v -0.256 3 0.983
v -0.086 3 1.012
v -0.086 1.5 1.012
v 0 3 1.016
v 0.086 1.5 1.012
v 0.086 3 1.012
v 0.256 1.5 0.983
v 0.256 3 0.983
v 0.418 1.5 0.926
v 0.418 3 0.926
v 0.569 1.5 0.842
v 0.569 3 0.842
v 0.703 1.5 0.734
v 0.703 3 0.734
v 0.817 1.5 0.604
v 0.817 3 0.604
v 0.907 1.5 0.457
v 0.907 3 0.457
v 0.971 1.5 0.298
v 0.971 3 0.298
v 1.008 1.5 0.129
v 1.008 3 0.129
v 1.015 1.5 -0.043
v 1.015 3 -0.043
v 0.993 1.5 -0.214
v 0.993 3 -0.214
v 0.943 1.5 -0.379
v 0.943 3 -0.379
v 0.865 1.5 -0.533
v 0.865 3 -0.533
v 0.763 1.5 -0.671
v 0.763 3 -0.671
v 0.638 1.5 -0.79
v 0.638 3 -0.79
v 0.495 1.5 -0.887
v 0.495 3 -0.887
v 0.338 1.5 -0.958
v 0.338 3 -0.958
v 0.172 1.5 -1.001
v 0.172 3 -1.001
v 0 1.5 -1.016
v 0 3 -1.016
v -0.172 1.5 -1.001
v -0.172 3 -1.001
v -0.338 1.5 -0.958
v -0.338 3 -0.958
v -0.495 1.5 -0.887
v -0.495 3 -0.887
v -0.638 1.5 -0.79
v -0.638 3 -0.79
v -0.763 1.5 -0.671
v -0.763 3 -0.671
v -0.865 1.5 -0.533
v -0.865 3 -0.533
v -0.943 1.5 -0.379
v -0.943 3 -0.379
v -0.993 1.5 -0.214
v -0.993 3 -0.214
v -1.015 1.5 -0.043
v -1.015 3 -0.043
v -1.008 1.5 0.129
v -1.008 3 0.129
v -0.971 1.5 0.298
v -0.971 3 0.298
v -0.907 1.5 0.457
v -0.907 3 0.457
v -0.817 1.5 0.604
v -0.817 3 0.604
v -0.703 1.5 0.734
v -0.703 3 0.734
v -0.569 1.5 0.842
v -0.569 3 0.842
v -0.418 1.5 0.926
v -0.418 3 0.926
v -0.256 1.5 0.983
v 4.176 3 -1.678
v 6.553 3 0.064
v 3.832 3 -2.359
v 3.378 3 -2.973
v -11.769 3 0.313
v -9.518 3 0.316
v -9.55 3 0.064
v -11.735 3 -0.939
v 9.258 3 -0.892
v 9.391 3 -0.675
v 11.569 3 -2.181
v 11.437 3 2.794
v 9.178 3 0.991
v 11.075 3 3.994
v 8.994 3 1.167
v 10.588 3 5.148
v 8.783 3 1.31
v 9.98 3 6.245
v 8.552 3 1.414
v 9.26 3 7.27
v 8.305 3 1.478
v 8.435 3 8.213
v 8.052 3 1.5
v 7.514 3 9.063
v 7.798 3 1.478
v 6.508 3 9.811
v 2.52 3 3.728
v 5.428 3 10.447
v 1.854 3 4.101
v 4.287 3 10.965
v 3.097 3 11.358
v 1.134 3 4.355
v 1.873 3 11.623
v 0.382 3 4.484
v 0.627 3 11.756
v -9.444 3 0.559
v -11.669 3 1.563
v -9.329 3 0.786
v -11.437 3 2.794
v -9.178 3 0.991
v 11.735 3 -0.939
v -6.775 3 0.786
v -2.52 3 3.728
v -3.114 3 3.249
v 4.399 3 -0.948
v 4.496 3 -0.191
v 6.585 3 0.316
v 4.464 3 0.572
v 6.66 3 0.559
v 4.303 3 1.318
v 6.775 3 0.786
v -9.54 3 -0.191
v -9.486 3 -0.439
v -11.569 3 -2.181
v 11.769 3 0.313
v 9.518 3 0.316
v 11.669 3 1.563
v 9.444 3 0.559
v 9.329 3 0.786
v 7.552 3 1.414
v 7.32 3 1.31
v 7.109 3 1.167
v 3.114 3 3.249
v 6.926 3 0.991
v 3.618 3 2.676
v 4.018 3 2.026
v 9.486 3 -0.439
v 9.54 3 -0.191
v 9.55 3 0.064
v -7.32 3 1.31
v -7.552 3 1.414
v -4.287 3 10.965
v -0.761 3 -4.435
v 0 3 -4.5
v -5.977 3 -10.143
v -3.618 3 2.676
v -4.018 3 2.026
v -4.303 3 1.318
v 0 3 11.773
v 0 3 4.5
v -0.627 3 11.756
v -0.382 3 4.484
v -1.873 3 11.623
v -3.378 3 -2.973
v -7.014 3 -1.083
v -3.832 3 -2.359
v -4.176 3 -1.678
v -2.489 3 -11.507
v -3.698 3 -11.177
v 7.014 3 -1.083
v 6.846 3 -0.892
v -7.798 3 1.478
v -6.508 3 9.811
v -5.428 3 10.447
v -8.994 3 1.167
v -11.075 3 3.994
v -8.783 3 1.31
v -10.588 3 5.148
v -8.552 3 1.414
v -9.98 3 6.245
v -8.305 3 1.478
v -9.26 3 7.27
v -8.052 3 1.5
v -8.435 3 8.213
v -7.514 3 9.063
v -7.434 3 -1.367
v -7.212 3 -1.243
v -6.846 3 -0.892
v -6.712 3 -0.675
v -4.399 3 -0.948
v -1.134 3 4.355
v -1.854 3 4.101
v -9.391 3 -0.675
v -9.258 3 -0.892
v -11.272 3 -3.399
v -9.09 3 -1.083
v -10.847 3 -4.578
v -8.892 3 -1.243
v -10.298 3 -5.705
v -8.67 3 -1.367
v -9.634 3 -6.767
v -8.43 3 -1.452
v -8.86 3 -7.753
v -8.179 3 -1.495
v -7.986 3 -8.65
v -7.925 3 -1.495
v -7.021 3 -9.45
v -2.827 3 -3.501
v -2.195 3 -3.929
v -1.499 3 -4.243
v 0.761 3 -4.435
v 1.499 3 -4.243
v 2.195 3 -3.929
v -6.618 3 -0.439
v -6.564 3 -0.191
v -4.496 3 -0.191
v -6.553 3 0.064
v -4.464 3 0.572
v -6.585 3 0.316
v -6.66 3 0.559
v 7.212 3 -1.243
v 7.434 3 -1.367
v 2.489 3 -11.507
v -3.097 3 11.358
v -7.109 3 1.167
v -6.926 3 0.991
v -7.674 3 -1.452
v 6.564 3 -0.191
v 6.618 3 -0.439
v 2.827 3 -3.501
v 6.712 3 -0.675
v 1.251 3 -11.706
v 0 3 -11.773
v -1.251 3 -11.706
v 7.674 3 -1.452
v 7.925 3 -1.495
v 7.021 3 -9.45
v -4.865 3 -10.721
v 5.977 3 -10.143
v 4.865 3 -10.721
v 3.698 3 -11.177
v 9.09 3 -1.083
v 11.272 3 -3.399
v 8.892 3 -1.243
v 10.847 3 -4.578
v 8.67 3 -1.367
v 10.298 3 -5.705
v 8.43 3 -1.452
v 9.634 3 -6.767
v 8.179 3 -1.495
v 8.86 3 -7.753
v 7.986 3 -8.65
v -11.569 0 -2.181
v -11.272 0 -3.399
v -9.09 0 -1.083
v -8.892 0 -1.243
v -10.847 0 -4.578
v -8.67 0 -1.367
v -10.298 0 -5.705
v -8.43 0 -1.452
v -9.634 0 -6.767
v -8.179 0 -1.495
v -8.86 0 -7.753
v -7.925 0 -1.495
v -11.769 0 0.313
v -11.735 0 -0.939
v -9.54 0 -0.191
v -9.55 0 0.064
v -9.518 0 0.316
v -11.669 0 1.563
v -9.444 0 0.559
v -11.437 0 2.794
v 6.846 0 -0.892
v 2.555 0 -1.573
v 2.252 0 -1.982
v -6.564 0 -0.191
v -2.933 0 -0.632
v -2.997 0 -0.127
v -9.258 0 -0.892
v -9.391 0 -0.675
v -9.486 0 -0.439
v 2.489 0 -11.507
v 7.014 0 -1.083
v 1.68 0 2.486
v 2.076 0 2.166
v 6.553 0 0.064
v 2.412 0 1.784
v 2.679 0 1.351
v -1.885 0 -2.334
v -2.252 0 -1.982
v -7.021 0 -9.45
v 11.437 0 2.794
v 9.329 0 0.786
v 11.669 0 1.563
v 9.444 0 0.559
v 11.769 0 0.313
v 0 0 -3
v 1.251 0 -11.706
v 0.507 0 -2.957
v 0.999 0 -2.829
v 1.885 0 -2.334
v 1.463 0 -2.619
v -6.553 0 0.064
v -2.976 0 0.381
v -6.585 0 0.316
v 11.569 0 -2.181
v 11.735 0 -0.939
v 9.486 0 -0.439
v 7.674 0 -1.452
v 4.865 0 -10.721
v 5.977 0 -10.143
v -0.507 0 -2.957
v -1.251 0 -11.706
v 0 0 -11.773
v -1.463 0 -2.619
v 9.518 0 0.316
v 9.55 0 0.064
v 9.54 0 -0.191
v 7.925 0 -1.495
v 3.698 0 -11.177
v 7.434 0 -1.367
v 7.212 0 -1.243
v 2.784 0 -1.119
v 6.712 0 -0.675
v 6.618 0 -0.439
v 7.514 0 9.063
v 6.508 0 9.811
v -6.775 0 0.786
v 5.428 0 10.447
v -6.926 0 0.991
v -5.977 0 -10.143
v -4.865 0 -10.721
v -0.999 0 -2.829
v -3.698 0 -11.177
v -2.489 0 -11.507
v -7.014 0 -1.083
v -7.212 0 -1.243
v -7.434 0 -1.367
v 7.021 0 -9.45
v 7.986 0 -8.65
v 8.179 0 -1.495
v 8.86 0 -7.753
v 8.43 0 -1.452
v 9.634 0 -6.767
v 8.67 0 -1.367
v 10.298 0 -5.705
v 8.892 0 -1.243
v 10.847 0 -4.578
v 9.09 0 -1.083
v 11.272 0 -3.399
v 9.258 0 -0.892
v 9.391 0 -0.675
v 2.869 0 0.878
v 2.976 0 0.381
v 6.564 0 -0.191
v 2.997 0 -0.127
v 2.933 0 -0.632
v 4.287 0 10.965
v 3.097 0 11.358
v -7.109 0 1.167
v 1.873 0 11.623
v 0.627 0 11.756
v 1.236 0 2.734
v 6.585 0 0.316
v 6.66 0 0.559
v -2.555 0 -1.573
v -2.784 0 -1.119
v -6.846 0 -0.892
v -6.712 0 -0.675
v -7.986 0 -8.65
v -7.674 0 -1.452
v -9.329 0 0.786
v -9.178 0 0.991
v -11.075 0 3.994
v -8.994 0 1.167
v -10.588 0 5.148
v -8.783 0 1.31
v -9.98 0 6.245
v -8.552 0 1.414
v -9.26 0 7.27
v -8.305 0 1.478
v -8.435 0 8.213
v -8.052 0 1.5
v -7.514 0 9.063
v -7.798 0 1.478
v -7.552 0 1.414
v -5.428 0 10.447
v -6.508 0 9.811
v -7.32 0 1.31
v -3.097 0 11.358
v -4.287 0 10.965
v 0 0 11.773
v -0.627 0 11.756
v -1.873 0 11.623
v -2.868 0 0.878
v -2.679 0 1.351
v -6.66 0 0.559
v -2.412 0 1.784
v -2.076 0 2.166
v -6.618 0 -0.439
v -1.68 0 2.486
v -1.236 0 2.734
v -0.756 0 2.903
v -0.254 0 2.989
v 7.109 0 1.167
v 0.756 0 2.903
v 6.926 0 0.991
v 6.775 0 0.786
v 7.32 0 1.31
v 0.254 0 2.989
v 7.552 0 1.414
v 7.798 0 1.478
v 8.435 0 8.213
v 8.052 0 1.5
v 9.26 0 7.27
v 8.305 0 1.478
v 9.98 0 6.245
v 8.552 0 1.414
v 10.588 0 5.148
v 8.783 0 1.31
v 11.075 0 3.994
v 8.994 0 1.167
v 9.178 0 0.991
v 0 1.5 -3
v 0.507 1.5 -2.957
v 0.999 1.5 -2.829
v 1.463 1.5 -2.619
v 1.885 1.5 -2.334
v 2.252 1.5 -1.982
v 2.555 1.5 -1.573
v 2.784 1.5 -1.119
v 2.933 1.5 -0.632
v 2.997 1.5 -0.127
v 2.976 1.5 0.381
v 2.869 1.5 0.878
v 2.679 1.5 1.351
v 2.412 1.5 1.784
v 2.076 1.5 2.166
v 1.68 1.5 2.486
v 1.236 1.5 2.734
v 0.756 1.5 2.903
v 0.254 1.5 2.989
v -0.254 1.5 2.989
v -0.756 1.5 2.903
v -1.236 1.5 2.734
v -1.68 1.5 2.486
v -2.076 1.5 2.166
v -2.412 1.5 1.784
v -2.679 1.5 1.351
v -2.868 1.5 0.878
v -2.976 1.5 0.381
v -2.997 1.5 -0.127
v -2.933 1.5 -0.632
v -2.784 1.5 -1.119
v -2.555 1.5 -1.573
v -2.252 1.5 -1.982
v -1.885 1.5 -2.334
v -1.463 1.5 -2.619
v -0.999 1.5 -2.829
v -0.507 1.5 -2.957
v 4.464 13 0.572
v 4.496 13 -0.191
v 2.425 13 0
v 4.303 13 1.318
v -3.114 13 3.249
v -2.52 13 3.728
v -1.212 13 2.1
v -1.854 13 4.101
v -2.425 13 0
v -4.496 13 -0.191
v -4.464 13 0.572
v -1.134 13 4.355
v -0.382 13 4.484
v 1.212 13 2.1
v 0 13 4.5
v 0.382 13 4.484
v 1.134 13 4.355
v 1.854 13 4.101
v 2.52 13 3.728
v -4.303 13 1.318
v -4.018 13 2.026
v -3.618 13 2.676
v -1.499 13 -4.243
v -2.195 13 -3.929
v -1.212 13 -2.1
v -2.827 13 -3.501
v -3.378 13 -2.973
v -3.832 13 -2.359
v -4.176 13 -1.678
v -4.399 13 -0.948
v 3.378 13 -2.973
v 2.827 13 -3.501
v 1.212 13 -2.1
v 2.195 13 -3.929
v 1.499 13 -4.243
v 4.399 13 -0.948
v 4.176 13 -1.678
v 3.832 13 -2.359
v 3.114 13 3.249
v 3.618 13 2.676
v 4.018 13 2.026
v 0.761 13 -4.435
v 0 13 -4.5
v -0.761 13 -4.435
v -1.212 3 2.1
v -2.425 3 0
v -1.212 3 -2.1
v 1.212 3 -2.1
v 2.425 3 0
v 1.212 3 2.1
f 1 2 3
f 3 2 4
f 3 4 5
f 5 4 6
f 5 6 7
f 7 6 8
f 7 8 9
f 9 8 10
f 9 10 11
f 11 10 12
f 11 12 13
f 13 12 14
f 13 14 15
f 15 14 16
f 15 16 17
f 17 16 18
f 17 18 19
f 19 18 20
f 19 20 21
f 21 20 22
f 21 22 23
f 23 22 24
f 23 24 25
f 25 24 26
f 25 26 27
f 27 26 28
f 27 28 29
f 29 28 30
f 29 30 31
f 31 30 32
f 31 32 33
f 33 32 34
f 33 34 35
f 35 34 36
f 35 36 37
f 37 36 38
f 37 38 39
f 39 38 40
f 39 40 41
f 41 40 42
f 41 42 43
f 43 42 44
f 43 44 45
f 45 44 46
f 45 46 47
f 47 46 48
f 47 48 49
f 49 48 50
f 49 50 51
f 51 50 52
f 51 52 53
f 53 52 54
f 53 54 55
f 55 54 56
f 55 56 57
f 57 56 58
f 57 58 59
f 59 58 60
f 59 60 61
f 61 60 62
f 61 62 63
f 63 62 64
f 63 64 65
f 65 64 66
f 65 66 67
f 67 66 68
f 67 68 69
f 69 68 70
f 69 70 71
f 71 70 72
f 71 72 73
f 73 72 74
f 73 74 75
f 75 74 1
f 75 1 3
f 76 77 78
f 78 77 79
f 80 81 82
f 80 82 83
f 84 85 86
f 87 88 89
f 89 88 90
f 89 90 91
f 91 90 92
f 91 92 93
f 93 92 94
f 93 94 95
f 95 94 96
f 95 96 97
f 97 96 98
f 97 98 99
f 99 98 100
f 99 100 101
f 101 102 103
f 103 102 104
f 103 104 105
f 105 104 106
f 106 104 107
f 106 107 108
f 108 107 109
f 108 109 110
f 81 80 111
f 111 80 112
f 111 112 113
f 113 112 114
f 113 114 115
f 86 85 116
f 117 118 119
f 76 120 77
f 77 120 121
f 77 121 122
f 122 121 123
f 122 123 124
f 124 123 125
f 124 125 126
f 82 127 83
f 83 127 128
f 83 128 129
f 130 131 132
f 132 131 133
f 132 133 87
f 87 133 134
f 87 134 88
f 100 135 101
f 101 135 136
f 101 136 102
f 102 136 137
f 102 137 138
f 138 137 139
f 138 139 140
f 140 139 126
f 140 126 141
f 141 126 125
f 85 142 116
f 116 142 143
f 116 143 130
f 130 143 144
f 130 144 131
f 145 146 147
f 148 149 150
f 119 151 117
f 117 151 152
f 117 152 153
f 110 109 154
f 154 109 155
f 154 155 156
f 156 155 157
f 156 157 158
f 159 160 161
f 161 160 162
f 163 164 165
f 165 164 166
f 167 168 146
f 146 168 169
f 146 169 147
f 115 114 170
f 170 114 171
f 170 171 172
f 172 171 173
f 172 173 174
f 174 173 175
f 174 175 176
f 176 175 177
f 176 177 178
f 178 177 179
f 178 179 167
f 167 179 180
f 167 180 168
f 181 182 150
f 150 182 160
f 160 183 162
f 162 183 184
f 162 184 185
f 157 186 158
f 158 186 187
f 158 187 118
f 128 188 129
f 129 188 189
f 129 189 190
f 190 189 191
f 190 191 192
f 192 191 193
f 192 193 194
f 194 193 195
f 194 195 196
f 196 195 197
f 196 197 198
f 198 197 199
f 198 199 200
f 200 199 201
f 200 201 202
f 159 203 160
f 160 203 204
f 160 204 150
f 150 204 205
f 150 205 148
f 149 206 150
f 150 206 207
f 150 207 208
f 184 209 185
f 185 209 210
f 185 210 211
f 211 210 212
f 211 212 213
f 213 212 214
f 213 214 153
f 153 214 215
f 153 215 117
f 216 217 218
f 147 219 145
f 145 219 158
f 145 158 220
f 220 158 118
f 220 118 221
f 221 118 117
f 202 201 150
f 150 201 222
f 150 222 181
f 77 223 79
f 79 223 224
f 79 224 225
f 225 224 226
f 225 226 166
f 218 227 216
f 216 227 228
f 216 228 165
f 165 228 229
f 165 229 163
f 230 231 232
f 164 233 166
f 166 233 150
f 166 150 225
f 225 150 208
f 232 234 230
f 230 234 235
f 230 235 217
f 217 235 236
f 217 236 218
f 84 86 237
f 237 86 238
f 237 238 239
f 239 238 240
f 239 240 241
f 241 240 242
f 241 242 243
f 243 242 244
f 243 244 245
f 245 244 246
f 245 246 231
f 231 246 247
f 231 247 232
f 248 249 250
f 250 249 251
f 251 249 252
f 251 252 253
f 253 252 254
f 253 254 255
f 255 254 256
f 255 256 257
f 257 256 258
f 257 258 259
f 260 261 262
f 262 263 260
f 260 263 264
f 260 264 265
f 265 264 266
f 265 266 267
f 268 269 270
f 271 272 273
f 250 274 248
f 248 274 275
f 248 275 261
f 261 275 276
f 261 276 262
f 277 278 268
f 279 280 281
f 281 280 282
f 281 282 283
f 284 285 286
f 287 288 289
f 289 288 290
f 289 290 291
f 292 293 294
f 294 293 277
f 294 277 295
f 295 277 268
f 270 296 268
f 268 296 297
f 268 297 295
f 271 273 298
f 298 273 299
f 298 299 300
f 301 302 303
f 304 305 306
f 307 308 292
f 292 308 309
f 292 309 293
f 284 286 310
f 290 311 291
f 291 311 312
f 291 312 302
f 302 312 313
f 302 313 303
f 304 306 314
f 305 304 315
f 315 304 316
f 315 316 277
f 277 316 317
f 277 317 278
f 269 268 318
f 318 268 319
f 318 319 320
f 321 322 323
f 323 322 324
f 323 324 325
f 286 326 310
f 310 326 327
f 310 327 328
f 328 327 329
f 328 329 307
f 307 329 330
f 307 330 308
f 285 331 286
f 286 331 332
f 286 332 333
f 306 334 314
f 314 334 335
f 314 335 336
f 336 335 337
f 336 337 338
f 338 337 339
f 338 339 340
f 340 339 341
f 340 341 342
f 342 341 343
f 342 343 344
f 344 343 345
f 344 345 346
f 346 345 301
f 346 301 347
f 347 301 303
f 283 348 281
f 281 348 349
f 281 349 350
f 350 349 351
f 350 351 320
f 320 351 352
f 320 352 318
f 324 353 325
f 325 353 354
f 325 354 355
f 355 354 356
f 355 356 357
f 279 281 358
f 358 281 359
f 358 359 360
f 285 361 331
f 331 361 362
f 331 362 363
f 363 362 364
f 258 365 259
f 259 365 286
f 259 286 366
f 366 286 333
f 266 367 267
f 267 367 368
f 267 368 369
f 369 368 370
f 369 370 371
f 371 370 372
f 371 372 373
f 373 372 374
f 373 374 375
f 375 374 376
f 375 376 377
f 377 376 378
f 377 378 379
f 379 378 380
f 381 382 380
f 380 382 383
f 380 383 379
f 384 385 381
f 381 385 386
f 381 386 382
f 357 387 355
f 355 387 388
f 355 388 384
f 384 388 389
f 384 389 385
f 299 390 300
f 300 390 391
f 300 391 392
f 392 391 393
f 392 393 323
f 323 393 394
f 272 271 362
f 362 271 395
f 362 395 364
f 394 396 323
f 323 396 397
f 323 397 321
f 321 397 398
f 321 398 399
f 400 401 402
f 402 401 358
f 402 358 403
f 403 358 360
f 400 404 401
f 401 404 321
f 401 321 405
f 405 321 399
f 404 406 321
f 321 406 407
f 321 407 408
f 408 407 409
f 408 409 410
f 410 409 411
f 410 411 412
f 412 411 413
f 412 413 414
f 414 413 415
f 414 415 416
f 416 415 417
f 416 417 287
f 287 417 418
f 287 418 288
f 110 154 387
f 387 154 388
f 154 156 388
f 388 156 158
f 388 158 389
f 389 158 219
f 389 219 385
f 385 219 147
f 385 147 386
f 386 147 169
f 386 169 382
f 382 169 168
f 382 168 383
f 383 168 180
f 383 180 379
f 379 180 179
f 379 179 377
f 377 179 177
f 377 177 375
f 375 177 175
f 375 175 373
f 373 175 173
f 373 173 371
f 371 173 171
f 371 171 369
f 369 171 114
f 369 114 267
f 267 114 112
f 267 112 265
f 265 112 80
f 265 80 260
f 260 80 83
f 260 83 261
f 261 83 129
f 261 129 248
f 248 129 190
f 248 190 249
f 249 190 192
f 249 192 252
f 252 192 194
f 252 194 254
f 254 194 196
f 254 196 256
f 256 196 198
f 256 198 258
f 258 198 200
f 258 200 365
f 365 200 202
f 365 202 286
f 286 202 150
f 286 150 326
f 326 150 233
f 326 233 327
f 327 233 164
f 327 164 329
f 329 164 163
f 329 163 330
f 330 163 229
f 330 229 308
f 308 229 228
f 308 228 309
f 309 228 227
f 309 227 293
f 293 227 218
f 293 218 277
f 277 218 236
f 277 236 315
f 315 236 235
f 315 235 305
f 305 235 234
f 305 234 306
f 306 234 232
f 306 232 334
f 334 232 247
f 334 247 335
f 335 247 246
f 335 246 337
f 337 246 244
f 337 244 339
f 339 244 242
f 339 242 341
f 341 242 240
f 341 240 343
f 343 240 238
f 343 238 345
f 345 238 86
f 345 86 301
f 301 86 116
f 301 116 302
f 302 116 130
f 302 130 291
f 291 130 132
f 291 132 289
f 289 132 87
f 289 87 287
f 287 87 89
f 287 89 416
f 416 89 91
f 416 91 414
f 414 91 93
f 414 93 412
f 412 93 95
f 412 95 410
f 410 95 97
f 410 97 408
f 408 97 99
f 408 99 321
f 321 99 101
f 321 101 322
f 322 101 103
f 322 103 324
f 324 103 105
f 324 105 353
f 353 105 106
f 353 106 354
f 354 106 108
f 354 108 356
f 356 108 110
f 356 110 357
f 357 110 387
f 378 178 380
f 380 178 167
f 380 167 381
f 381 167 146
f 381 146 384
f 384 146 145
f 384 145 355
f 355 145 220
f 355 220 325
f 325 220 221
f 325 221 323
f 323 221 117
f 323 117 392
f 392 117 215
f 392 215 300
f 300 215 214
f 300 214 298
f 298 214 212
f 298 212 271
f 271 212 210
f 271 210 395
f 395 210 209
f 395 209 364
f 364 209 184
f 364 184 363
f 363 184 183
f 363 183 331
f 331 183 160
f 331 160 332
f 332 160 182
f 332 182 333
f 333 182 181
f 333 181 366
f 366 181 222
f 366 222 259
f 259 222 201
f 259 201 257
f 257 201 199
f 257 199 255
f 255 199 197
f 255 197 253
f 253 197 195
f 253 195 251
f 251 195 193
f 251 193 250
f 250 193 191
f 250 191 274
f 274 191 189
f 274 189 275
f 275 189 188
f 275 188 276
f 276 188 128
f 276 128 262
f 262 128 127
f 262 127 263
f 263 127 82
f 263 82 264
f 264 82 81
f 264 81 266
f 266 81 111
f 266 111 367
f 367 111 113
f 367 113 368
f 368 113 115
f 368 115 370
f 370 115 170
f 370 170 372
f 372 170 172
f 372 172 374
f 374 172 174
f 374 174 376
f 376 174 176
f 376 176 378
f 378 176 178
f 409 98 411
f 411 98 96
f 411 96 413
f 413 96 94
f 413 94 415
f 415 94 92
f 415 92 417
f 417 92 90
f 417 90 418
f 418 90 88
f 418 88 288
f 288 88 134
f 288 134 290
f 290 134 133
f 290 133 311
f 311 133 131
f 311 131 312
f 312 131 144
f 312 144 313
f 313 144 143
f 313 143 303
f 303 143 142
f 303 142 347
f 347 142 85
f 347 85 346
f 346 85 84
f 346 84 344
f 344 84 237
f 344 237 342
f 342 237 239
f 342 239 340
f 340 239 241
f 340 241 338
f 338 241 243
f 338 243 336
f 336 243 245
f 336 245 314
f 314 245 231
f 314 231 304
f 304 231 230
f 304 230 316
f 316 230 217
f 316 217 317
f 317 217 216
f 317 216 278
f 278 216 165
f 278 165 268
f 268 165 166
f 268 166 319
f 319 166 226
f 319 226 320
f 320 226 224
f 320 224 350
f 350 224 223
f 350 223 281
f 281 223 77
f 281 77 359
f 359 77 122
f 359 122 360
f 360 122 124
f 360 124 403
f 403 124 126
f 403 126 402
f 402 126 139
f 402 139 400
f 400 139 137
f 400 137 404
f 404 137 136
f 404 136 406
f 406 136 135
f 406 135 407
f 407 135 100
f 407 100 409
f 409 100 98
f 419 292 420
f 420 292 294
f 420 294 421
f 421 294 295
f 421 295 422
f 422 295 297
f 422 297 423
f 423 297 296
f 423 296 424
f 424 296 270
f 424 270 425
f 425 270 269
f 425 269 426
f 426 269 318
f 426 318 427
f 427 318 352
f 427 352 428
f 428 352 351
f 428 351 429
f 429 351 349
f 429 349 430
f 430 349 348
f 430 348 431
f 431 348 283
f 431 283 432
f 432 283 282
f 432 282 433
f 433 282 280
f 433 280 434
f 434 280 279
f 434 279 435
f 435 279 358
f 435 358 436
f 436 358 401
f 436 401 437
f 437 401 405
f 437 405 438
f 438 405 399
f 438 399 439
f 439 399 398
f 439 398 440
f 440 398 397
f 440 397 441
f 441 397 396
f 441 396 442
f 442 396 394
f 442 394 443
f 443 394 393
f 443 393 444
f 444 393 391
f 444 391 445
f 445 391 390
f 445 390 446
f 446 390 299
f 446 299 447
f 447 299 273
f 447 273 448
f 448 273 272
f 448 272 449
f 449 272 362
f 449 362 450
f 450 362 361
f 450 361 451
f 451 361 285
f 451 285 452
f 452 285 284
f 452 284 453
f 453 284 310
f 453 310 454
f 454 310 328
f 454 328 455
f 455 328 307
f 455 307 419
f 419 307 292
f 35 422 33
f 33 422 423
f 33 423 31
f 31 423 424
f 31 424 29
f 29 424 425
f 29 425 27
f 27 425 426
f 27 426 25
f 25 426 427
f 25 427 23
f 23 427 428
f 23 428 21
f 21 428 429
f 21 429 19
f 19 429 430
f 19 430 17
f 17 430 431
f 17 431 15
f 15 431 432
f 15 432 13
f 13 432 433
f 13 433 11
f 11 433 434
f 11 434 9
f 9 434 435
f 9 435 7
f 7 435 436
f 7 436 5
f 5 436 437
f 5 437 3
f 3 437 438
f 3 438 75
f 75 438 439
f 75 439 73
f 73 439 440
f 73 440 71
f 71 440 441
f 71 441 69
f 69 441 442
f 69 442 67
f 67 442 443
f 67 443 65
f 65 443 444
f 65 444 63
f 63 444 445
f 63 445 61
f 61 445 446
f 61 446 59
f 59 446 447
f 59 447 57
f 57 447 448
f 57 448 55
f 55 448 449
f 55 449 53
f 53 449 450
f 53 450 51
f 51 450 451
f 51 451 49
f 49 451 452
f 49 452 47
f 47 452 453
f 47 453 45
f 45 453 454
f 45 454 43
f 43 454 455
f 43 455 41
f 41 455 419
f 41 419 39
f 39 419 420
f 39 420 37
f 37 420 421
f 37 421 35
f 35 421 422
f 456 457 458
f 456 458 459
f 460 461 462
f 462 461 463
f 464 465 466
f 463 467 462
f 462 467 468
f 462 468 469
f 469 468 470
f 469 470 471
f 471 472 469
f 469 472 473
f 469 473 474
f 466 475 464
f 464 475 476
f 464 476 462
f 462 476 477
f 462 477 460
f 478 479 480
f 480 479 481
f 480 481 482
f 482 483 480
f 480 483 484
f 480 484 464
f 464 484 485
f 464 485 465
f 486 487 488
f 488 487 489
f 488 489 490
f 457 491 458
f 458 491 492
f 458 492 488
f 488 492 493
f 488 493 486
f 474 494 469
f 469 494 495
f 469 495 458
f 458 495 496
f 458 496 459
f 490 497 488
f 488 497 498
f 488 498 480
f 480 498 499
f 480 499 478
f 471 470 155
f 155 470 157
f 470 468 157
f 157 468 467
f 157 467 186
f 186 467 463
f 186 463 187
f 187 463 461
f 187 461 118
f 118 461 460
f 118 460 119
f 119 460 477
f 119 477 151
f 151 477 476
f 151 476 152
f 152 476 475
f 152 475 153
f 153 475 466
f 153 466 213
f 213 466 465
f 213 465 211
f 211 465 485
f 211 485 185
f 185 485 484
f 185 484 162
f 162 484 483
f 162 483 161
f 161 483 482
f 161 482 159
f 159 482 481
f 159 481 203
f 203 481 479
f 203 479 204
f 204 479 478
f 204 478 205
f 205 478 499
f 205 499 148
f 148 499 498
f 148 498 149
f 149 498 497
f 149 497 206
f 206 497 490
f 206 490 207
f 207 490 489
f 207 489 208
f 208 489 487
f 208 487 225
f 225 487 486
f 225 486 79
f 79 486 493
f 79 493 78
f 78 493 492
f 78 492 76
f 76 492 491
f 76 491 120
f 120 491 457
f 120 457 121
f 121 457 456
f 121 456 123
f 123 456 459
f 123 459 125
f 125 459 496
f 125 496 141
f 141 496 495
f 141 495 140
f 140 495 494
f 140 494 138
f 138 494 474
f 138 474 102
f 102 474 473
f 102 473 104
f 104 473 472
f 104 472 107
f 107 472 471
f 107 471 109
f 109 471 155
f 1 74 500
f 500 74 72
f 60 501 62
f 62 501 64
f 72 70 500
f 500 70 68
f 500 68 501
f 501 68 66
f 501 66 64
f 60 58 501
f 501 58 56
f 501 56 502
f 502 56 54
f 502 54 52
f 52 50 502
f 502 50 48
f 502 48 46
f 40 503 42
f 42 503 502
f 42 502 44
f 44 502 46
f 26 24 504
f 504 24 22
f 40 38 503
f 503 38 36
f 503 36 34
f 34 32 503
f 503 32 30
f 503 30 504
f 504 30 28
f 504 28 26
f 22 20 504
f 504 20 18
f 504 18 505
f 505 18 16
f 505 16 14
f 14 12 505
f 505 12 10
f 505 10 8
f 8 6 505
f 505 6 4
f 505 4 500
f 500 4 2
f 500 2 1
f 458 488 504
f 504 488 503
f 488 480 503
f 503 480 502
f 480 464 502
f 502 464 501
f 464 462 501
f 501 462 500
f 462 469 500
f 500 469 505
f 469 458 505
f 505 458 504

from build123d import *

# Parameters (mm, degrees)
SKETCH1_R           = 11.7729
SKETCH1_R_2         = 1.016
BOSS_EXTRUDE1_DEPTH = 3
SKETCH2_R           = 1.5
CUT_EXTRUDE1_DEPTH  = 17.917516036
SKETCH4_R           = 3
CUT_EXTRUDE3_DEPTH  = 1.5
SKETCH6_R           = 4.5
BOSS_EXTRUDE4_DEPTH = 10
CUT_EXTRUDE4_DEPTH  = 20.421697887


with BuildPart() as part:
    # Sketch1 → Boss-Extrude1 (new body)
    with BuildSketch(Plane(origin=(0, 0, 0), x_dir=(1, 0, 0), z_dir=(0, 1, 0))):
        with Locations(Location((0, 0, 0), (0, 0, 270))):
            Circle(SKETCH1_R)
        with Locations(Location((0, 0, 0), (0, 0, 270))):
            Circle(SKETCH1_R_2, mode=Mode.SUBTRACT)
    extrude(amount=BOSS_EXTRUDE1_DEPTH)

    # Sketch2 → Cut-Extrude1 (cut, through all)
    with BuildSketch(Plane(origin=(0, 3, 0), x_dir=(1, 0, 0), z_dir=(0, 1, 0))):
        with Locations(Location((8.0518, 0, 0), (0, 0, 270))):
            Circle(SKETCH2_R)
        with Locations(Location((-8.0518, 0, 0), (0, 0, 270))):
            Circle(SKETCH2_R)
    extrude(amount=-CUT_EXTRUDE1_DEPTH, mode=Mode.SUBTRACT)

    # Sketch4 → Cut-Extrude3 (cut)
    with BuildSketch(Plane.XZ):
        with Locations(Location((0, 0, 0), (0, 0, 270))):
            Circle(SKETCH4_R)
    extrude(amount=-CUT_EXTRUDE3_DEPTH, mode=Mode.SUBTRACT)

    # Sketch6 → Boss-Extrude4 (add)
    with BuildSketch(Plane(origin=(0, 3, 0), x_dir=(1, 0, 0), z_dir=(0, 1, 0))):
        with Locations(Location((0, 0, 0), (0, 0, 270))):
            Circle(SKETCH6_R)
    extrude(amount=BOSS_EXTRUDE4_DEPTH)

    # Sketch7 → Cut-Extrude4 (cut, through all)
    with BuildSketch(Plane.XZ.offset(-3)):
        Polygon((2.424871131, 0), (1.212435565, 2.1), (-1.212435565, 2.1), (-2.424871131, 0), (-1.212435565, -2.1), (1.212435565, -2.1), align=None)
    extrude(amount=-CUT_EXTRUDE4_DEPTH, mode=Mode.SUBTRACT)


solid = part.part
